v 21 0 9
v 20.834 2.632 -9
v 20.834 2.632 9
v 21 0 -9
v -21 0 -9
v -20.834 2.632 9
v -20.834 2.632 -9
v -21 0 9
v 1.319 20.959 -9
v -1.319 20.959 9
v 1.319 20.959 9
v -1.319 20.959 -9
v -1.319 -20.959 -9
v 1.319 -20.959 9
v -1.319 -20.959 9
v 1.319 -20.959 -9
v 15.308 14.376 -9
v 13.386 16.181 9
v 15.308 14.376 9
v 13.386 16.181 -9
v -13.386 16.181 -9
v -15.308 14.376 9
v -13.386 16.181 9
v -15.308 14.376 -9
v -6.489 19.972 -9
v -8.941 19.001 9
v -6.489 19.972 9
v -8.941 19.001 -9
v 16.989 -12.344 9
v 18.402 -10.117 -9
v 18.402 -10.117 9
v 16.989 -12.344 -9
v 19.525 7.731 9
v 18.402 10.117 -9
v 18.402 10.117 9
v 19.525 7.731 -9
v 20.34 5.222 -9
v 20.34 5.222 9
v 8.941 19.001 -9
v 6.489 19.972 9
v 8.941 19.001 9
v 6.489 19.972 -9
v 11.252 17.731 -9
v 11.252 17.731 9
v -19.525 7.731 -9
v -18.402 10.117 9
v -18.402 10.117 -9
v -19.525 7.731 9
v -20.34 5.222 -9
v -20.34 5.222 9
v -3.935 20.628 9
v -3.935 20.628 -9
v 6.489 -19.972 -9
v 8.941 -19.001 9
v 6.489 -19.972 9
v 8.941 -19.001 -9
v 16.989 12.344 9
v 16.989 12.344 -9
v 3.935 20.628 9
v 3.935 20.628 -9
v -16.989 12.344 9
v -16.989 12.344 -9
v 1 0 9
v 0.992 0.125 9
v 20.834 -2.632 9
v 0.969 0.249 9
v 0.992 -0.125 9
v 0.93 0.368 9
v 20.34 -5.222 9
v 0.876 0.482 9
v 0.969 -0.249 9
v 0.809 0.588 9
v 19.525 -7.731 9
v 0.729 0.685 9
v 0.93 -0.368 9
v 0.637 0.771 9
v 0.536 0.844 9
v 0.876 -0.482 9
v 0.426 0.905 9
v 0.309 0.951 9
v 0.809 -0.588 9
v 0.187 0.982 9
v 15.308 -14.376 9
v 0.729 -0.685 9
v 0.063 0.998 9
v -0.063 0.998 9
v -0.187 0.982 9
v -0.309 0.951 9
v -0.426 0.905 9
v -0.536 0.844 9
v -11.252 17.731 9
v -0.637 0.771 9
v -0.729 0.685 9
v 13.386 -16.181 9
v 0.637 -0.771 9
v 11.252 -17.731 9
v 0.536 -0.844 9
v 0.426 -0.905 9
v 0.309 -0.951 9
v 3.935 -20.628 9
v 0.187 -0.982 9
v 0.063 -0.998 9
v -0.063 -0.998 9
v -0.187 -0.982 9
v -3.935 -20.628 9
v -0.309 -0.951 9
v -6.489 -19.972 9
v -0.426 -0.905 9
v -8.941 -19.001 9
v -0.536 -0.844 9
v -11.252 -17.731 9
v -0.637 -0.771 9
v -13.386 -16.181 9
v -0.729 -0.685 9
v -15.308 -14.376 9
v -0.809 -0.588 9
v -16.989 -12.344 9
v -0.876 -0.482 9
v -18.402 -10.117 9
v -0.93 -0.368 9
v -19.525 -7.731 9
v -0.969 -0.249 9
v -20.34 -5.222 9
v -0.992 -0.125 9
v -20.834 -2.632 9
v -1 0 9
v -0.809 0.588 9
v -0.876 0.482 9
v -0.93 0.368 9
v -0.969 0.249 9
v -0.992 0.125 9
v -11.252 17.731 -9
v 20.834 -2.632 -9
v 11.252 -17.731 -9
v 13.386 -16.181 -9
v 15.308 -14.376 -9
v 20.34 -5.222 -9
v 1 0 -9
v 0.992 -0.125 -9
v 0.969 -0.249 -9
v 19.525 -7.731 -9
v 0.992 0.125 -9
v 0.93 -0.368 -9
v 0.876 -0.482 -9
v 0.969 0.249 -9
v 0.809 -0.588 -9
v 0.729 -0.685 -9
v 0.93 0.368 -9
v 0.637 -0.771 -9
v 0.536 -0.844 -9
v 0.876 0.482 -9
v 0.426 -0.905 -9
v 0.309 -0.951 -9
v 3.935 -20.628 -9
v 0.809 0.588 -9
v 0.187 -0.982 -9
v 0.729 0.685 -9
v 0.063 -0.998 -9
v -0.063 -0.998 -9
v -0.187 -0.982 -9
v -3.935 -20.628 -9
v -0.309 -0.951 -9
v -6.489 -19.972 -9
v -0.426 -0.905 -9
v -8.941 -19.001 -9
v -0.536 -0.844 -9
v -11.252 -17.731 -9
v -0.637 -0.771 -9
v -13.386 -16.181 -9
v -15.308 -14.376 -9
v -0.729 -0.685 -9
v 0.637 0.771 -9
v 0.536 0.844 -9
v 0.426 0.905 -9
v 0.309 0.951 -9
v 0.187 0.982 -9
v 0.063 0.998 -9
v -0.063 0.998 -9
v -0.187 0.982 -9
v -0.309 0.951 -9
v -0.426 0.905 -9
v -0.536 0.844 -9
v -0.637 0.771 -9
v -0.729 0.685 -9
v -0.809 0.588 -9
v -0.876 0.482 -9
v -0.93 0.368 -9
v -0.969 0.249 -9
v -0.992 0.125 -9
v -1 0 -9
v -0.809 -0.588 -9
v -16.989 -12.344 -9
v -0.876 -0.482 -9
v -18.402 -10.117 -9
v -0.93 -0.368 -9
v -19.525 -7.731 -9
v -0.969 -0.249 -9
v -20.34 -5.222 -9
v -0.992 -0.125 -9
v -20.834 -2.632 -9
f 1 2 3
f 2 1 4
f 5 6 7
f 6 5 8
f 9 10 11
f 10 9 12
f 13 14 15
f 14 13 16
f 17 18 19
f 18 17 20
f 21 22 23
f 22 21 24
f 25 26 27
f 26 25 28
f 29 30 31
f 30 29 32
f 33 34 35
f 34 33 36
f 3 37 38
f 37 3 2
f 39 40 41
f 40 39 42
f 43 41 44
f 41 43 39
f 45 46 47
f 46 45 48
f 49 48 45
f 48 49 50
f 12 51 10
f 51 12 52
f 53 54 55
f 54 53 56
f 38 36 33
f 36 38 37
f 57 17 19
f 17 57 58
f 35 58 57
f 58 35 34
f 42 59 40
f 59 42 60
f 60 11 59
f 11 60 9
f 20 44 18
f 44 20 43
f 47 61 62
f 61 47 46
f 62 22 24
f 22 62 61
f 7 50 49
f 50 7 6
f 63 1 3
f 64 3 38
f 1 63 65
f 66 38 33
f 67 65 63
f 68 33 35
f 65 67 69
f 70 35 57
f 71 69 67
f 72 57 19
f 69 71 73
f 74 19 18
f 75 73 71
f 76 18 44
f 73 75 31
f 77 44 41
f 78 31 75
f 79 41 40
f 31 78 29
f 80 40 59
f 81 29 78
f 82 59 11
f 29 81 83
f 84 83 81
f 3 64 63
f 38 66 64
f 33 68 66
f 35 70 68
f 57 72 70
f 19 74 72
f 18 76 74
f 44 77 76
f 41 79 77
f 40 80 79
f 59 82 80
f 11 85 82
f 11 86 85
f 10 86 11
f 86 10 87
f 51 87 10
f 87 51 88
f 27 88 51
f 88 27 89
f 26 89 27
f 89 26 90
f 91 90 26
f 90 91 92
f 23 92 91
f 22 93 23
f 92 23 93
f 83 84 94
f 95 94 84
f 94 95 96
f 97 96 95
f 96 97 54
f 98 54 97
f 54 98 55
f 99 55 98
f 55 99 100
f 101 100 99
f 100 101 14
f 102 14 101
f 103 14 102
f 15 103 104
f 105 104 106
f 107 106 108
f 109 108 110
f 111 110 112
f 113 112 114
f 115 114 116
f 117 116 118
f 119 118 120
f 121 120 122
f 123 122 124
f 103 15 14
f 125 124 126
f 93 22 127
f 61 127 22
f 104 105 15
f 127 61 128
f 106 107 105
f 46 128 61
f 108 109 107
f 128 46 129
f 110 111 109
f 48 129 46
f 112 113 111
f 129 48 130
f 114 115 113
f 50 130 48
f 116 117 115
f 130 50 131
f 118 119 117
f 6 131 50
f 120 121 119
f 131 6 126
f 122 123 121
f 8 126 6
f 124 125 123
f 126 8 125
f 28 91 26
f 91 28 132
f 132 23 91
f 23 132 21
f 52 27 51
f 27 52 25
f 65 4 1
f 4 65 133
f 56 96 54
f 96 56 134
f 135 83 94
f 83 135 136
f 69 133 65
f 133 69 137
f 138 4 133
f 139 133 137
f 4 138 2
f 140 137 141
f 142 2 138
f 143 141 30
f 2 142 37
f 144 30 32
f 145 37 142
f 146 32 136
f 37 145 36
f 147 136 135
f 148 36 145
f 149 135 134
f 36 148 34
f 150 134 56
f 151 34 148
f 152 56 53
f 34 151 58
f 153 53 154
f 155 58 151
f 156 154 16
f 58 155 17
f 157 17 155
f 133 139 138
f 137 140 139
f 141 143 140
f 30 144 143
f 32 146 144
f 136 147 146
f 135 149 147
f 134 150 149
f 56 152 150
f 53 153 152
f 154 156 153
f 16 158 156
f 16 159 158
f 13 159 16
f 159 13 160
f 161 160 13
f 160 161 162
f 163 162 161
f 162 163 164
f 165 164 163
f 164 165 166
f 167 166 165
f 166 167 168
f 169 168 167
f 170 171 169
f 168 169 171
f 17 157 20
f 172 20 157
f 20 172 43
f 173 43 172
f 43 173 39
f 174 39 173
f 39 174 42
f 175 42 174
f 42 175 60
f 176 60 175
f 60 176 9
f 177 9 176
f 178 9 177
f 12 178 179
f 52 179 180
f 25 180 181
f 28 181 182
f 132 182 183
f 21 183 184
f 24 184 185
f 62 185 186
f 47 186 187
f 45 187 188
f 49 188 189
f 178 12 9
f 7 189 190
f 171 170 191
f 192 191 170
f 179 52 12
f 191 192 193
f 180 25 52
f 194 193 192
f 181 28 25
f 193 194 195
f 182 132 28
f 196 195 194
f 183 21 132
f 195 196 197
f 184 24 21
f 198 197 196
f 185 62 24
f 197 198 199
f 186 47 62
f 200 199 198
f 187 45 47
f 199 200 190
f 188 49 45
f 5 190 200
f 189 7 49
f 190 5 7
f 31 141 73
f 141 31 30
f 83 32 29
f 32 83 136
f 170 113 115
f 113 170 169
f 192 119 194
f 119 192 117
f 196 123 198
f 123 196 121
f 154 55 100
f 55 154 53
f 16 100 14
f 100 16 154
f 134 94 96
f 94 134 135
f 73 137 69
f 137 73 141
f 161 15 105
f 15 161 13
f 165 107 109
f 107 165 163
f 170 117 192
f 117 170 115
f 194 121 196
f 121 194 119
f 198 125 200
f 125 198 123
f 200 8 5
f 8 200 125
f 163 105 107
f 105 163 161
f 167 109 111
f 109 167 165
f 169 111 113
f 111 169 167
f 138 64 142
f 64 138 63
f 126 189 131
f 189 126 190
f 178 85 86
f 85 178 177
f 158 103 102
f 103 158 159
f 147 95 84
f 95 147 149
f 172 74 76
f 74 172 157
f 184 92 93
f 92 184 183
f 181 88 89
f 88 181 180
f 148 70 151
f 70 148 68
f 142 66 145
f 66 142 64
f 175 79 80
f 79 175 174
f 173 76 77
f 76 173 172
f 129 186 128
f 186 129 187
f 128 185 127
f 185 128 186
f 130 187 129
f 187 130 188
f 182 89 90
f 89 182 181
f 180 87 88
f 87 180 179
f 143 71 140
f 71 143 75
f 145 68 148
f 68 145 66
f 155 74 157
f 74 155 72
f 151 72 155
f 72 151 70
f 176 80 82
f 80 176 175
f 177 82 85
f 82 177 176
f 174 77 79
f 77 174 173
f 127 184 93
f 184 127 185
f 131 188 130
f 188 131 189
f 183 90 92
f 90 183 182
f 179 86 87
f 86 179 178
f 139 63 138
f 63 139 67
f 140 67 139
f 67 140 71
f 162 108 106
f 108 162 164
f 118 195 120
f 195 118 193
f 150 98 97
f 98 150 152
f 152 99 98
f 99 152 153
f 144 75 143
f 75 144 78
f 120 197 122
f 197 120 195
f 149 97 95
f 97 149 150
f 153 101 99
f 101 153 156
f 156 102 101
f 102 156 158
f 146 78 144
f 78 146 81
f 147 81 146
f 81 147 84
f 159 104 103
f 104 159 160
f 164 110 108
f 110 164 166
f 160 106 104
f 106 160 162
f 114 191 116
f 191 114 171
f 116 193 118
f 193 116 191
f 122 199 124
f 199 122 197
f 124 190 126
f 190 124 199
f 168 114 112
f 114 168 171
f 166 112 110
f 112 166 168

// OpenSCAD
$fn = 50;


difference() {
	union() {
		translate(v = [0, 0, -9.0000000000]) {
			cylinder(h = 18, r = 21.0000000000);
		}
	}
	union() {
		translate(v = [0, 0, -100.0000000000]) {
			cylinder(h = 200, r = 1.0000000000);
		}
	}
}
